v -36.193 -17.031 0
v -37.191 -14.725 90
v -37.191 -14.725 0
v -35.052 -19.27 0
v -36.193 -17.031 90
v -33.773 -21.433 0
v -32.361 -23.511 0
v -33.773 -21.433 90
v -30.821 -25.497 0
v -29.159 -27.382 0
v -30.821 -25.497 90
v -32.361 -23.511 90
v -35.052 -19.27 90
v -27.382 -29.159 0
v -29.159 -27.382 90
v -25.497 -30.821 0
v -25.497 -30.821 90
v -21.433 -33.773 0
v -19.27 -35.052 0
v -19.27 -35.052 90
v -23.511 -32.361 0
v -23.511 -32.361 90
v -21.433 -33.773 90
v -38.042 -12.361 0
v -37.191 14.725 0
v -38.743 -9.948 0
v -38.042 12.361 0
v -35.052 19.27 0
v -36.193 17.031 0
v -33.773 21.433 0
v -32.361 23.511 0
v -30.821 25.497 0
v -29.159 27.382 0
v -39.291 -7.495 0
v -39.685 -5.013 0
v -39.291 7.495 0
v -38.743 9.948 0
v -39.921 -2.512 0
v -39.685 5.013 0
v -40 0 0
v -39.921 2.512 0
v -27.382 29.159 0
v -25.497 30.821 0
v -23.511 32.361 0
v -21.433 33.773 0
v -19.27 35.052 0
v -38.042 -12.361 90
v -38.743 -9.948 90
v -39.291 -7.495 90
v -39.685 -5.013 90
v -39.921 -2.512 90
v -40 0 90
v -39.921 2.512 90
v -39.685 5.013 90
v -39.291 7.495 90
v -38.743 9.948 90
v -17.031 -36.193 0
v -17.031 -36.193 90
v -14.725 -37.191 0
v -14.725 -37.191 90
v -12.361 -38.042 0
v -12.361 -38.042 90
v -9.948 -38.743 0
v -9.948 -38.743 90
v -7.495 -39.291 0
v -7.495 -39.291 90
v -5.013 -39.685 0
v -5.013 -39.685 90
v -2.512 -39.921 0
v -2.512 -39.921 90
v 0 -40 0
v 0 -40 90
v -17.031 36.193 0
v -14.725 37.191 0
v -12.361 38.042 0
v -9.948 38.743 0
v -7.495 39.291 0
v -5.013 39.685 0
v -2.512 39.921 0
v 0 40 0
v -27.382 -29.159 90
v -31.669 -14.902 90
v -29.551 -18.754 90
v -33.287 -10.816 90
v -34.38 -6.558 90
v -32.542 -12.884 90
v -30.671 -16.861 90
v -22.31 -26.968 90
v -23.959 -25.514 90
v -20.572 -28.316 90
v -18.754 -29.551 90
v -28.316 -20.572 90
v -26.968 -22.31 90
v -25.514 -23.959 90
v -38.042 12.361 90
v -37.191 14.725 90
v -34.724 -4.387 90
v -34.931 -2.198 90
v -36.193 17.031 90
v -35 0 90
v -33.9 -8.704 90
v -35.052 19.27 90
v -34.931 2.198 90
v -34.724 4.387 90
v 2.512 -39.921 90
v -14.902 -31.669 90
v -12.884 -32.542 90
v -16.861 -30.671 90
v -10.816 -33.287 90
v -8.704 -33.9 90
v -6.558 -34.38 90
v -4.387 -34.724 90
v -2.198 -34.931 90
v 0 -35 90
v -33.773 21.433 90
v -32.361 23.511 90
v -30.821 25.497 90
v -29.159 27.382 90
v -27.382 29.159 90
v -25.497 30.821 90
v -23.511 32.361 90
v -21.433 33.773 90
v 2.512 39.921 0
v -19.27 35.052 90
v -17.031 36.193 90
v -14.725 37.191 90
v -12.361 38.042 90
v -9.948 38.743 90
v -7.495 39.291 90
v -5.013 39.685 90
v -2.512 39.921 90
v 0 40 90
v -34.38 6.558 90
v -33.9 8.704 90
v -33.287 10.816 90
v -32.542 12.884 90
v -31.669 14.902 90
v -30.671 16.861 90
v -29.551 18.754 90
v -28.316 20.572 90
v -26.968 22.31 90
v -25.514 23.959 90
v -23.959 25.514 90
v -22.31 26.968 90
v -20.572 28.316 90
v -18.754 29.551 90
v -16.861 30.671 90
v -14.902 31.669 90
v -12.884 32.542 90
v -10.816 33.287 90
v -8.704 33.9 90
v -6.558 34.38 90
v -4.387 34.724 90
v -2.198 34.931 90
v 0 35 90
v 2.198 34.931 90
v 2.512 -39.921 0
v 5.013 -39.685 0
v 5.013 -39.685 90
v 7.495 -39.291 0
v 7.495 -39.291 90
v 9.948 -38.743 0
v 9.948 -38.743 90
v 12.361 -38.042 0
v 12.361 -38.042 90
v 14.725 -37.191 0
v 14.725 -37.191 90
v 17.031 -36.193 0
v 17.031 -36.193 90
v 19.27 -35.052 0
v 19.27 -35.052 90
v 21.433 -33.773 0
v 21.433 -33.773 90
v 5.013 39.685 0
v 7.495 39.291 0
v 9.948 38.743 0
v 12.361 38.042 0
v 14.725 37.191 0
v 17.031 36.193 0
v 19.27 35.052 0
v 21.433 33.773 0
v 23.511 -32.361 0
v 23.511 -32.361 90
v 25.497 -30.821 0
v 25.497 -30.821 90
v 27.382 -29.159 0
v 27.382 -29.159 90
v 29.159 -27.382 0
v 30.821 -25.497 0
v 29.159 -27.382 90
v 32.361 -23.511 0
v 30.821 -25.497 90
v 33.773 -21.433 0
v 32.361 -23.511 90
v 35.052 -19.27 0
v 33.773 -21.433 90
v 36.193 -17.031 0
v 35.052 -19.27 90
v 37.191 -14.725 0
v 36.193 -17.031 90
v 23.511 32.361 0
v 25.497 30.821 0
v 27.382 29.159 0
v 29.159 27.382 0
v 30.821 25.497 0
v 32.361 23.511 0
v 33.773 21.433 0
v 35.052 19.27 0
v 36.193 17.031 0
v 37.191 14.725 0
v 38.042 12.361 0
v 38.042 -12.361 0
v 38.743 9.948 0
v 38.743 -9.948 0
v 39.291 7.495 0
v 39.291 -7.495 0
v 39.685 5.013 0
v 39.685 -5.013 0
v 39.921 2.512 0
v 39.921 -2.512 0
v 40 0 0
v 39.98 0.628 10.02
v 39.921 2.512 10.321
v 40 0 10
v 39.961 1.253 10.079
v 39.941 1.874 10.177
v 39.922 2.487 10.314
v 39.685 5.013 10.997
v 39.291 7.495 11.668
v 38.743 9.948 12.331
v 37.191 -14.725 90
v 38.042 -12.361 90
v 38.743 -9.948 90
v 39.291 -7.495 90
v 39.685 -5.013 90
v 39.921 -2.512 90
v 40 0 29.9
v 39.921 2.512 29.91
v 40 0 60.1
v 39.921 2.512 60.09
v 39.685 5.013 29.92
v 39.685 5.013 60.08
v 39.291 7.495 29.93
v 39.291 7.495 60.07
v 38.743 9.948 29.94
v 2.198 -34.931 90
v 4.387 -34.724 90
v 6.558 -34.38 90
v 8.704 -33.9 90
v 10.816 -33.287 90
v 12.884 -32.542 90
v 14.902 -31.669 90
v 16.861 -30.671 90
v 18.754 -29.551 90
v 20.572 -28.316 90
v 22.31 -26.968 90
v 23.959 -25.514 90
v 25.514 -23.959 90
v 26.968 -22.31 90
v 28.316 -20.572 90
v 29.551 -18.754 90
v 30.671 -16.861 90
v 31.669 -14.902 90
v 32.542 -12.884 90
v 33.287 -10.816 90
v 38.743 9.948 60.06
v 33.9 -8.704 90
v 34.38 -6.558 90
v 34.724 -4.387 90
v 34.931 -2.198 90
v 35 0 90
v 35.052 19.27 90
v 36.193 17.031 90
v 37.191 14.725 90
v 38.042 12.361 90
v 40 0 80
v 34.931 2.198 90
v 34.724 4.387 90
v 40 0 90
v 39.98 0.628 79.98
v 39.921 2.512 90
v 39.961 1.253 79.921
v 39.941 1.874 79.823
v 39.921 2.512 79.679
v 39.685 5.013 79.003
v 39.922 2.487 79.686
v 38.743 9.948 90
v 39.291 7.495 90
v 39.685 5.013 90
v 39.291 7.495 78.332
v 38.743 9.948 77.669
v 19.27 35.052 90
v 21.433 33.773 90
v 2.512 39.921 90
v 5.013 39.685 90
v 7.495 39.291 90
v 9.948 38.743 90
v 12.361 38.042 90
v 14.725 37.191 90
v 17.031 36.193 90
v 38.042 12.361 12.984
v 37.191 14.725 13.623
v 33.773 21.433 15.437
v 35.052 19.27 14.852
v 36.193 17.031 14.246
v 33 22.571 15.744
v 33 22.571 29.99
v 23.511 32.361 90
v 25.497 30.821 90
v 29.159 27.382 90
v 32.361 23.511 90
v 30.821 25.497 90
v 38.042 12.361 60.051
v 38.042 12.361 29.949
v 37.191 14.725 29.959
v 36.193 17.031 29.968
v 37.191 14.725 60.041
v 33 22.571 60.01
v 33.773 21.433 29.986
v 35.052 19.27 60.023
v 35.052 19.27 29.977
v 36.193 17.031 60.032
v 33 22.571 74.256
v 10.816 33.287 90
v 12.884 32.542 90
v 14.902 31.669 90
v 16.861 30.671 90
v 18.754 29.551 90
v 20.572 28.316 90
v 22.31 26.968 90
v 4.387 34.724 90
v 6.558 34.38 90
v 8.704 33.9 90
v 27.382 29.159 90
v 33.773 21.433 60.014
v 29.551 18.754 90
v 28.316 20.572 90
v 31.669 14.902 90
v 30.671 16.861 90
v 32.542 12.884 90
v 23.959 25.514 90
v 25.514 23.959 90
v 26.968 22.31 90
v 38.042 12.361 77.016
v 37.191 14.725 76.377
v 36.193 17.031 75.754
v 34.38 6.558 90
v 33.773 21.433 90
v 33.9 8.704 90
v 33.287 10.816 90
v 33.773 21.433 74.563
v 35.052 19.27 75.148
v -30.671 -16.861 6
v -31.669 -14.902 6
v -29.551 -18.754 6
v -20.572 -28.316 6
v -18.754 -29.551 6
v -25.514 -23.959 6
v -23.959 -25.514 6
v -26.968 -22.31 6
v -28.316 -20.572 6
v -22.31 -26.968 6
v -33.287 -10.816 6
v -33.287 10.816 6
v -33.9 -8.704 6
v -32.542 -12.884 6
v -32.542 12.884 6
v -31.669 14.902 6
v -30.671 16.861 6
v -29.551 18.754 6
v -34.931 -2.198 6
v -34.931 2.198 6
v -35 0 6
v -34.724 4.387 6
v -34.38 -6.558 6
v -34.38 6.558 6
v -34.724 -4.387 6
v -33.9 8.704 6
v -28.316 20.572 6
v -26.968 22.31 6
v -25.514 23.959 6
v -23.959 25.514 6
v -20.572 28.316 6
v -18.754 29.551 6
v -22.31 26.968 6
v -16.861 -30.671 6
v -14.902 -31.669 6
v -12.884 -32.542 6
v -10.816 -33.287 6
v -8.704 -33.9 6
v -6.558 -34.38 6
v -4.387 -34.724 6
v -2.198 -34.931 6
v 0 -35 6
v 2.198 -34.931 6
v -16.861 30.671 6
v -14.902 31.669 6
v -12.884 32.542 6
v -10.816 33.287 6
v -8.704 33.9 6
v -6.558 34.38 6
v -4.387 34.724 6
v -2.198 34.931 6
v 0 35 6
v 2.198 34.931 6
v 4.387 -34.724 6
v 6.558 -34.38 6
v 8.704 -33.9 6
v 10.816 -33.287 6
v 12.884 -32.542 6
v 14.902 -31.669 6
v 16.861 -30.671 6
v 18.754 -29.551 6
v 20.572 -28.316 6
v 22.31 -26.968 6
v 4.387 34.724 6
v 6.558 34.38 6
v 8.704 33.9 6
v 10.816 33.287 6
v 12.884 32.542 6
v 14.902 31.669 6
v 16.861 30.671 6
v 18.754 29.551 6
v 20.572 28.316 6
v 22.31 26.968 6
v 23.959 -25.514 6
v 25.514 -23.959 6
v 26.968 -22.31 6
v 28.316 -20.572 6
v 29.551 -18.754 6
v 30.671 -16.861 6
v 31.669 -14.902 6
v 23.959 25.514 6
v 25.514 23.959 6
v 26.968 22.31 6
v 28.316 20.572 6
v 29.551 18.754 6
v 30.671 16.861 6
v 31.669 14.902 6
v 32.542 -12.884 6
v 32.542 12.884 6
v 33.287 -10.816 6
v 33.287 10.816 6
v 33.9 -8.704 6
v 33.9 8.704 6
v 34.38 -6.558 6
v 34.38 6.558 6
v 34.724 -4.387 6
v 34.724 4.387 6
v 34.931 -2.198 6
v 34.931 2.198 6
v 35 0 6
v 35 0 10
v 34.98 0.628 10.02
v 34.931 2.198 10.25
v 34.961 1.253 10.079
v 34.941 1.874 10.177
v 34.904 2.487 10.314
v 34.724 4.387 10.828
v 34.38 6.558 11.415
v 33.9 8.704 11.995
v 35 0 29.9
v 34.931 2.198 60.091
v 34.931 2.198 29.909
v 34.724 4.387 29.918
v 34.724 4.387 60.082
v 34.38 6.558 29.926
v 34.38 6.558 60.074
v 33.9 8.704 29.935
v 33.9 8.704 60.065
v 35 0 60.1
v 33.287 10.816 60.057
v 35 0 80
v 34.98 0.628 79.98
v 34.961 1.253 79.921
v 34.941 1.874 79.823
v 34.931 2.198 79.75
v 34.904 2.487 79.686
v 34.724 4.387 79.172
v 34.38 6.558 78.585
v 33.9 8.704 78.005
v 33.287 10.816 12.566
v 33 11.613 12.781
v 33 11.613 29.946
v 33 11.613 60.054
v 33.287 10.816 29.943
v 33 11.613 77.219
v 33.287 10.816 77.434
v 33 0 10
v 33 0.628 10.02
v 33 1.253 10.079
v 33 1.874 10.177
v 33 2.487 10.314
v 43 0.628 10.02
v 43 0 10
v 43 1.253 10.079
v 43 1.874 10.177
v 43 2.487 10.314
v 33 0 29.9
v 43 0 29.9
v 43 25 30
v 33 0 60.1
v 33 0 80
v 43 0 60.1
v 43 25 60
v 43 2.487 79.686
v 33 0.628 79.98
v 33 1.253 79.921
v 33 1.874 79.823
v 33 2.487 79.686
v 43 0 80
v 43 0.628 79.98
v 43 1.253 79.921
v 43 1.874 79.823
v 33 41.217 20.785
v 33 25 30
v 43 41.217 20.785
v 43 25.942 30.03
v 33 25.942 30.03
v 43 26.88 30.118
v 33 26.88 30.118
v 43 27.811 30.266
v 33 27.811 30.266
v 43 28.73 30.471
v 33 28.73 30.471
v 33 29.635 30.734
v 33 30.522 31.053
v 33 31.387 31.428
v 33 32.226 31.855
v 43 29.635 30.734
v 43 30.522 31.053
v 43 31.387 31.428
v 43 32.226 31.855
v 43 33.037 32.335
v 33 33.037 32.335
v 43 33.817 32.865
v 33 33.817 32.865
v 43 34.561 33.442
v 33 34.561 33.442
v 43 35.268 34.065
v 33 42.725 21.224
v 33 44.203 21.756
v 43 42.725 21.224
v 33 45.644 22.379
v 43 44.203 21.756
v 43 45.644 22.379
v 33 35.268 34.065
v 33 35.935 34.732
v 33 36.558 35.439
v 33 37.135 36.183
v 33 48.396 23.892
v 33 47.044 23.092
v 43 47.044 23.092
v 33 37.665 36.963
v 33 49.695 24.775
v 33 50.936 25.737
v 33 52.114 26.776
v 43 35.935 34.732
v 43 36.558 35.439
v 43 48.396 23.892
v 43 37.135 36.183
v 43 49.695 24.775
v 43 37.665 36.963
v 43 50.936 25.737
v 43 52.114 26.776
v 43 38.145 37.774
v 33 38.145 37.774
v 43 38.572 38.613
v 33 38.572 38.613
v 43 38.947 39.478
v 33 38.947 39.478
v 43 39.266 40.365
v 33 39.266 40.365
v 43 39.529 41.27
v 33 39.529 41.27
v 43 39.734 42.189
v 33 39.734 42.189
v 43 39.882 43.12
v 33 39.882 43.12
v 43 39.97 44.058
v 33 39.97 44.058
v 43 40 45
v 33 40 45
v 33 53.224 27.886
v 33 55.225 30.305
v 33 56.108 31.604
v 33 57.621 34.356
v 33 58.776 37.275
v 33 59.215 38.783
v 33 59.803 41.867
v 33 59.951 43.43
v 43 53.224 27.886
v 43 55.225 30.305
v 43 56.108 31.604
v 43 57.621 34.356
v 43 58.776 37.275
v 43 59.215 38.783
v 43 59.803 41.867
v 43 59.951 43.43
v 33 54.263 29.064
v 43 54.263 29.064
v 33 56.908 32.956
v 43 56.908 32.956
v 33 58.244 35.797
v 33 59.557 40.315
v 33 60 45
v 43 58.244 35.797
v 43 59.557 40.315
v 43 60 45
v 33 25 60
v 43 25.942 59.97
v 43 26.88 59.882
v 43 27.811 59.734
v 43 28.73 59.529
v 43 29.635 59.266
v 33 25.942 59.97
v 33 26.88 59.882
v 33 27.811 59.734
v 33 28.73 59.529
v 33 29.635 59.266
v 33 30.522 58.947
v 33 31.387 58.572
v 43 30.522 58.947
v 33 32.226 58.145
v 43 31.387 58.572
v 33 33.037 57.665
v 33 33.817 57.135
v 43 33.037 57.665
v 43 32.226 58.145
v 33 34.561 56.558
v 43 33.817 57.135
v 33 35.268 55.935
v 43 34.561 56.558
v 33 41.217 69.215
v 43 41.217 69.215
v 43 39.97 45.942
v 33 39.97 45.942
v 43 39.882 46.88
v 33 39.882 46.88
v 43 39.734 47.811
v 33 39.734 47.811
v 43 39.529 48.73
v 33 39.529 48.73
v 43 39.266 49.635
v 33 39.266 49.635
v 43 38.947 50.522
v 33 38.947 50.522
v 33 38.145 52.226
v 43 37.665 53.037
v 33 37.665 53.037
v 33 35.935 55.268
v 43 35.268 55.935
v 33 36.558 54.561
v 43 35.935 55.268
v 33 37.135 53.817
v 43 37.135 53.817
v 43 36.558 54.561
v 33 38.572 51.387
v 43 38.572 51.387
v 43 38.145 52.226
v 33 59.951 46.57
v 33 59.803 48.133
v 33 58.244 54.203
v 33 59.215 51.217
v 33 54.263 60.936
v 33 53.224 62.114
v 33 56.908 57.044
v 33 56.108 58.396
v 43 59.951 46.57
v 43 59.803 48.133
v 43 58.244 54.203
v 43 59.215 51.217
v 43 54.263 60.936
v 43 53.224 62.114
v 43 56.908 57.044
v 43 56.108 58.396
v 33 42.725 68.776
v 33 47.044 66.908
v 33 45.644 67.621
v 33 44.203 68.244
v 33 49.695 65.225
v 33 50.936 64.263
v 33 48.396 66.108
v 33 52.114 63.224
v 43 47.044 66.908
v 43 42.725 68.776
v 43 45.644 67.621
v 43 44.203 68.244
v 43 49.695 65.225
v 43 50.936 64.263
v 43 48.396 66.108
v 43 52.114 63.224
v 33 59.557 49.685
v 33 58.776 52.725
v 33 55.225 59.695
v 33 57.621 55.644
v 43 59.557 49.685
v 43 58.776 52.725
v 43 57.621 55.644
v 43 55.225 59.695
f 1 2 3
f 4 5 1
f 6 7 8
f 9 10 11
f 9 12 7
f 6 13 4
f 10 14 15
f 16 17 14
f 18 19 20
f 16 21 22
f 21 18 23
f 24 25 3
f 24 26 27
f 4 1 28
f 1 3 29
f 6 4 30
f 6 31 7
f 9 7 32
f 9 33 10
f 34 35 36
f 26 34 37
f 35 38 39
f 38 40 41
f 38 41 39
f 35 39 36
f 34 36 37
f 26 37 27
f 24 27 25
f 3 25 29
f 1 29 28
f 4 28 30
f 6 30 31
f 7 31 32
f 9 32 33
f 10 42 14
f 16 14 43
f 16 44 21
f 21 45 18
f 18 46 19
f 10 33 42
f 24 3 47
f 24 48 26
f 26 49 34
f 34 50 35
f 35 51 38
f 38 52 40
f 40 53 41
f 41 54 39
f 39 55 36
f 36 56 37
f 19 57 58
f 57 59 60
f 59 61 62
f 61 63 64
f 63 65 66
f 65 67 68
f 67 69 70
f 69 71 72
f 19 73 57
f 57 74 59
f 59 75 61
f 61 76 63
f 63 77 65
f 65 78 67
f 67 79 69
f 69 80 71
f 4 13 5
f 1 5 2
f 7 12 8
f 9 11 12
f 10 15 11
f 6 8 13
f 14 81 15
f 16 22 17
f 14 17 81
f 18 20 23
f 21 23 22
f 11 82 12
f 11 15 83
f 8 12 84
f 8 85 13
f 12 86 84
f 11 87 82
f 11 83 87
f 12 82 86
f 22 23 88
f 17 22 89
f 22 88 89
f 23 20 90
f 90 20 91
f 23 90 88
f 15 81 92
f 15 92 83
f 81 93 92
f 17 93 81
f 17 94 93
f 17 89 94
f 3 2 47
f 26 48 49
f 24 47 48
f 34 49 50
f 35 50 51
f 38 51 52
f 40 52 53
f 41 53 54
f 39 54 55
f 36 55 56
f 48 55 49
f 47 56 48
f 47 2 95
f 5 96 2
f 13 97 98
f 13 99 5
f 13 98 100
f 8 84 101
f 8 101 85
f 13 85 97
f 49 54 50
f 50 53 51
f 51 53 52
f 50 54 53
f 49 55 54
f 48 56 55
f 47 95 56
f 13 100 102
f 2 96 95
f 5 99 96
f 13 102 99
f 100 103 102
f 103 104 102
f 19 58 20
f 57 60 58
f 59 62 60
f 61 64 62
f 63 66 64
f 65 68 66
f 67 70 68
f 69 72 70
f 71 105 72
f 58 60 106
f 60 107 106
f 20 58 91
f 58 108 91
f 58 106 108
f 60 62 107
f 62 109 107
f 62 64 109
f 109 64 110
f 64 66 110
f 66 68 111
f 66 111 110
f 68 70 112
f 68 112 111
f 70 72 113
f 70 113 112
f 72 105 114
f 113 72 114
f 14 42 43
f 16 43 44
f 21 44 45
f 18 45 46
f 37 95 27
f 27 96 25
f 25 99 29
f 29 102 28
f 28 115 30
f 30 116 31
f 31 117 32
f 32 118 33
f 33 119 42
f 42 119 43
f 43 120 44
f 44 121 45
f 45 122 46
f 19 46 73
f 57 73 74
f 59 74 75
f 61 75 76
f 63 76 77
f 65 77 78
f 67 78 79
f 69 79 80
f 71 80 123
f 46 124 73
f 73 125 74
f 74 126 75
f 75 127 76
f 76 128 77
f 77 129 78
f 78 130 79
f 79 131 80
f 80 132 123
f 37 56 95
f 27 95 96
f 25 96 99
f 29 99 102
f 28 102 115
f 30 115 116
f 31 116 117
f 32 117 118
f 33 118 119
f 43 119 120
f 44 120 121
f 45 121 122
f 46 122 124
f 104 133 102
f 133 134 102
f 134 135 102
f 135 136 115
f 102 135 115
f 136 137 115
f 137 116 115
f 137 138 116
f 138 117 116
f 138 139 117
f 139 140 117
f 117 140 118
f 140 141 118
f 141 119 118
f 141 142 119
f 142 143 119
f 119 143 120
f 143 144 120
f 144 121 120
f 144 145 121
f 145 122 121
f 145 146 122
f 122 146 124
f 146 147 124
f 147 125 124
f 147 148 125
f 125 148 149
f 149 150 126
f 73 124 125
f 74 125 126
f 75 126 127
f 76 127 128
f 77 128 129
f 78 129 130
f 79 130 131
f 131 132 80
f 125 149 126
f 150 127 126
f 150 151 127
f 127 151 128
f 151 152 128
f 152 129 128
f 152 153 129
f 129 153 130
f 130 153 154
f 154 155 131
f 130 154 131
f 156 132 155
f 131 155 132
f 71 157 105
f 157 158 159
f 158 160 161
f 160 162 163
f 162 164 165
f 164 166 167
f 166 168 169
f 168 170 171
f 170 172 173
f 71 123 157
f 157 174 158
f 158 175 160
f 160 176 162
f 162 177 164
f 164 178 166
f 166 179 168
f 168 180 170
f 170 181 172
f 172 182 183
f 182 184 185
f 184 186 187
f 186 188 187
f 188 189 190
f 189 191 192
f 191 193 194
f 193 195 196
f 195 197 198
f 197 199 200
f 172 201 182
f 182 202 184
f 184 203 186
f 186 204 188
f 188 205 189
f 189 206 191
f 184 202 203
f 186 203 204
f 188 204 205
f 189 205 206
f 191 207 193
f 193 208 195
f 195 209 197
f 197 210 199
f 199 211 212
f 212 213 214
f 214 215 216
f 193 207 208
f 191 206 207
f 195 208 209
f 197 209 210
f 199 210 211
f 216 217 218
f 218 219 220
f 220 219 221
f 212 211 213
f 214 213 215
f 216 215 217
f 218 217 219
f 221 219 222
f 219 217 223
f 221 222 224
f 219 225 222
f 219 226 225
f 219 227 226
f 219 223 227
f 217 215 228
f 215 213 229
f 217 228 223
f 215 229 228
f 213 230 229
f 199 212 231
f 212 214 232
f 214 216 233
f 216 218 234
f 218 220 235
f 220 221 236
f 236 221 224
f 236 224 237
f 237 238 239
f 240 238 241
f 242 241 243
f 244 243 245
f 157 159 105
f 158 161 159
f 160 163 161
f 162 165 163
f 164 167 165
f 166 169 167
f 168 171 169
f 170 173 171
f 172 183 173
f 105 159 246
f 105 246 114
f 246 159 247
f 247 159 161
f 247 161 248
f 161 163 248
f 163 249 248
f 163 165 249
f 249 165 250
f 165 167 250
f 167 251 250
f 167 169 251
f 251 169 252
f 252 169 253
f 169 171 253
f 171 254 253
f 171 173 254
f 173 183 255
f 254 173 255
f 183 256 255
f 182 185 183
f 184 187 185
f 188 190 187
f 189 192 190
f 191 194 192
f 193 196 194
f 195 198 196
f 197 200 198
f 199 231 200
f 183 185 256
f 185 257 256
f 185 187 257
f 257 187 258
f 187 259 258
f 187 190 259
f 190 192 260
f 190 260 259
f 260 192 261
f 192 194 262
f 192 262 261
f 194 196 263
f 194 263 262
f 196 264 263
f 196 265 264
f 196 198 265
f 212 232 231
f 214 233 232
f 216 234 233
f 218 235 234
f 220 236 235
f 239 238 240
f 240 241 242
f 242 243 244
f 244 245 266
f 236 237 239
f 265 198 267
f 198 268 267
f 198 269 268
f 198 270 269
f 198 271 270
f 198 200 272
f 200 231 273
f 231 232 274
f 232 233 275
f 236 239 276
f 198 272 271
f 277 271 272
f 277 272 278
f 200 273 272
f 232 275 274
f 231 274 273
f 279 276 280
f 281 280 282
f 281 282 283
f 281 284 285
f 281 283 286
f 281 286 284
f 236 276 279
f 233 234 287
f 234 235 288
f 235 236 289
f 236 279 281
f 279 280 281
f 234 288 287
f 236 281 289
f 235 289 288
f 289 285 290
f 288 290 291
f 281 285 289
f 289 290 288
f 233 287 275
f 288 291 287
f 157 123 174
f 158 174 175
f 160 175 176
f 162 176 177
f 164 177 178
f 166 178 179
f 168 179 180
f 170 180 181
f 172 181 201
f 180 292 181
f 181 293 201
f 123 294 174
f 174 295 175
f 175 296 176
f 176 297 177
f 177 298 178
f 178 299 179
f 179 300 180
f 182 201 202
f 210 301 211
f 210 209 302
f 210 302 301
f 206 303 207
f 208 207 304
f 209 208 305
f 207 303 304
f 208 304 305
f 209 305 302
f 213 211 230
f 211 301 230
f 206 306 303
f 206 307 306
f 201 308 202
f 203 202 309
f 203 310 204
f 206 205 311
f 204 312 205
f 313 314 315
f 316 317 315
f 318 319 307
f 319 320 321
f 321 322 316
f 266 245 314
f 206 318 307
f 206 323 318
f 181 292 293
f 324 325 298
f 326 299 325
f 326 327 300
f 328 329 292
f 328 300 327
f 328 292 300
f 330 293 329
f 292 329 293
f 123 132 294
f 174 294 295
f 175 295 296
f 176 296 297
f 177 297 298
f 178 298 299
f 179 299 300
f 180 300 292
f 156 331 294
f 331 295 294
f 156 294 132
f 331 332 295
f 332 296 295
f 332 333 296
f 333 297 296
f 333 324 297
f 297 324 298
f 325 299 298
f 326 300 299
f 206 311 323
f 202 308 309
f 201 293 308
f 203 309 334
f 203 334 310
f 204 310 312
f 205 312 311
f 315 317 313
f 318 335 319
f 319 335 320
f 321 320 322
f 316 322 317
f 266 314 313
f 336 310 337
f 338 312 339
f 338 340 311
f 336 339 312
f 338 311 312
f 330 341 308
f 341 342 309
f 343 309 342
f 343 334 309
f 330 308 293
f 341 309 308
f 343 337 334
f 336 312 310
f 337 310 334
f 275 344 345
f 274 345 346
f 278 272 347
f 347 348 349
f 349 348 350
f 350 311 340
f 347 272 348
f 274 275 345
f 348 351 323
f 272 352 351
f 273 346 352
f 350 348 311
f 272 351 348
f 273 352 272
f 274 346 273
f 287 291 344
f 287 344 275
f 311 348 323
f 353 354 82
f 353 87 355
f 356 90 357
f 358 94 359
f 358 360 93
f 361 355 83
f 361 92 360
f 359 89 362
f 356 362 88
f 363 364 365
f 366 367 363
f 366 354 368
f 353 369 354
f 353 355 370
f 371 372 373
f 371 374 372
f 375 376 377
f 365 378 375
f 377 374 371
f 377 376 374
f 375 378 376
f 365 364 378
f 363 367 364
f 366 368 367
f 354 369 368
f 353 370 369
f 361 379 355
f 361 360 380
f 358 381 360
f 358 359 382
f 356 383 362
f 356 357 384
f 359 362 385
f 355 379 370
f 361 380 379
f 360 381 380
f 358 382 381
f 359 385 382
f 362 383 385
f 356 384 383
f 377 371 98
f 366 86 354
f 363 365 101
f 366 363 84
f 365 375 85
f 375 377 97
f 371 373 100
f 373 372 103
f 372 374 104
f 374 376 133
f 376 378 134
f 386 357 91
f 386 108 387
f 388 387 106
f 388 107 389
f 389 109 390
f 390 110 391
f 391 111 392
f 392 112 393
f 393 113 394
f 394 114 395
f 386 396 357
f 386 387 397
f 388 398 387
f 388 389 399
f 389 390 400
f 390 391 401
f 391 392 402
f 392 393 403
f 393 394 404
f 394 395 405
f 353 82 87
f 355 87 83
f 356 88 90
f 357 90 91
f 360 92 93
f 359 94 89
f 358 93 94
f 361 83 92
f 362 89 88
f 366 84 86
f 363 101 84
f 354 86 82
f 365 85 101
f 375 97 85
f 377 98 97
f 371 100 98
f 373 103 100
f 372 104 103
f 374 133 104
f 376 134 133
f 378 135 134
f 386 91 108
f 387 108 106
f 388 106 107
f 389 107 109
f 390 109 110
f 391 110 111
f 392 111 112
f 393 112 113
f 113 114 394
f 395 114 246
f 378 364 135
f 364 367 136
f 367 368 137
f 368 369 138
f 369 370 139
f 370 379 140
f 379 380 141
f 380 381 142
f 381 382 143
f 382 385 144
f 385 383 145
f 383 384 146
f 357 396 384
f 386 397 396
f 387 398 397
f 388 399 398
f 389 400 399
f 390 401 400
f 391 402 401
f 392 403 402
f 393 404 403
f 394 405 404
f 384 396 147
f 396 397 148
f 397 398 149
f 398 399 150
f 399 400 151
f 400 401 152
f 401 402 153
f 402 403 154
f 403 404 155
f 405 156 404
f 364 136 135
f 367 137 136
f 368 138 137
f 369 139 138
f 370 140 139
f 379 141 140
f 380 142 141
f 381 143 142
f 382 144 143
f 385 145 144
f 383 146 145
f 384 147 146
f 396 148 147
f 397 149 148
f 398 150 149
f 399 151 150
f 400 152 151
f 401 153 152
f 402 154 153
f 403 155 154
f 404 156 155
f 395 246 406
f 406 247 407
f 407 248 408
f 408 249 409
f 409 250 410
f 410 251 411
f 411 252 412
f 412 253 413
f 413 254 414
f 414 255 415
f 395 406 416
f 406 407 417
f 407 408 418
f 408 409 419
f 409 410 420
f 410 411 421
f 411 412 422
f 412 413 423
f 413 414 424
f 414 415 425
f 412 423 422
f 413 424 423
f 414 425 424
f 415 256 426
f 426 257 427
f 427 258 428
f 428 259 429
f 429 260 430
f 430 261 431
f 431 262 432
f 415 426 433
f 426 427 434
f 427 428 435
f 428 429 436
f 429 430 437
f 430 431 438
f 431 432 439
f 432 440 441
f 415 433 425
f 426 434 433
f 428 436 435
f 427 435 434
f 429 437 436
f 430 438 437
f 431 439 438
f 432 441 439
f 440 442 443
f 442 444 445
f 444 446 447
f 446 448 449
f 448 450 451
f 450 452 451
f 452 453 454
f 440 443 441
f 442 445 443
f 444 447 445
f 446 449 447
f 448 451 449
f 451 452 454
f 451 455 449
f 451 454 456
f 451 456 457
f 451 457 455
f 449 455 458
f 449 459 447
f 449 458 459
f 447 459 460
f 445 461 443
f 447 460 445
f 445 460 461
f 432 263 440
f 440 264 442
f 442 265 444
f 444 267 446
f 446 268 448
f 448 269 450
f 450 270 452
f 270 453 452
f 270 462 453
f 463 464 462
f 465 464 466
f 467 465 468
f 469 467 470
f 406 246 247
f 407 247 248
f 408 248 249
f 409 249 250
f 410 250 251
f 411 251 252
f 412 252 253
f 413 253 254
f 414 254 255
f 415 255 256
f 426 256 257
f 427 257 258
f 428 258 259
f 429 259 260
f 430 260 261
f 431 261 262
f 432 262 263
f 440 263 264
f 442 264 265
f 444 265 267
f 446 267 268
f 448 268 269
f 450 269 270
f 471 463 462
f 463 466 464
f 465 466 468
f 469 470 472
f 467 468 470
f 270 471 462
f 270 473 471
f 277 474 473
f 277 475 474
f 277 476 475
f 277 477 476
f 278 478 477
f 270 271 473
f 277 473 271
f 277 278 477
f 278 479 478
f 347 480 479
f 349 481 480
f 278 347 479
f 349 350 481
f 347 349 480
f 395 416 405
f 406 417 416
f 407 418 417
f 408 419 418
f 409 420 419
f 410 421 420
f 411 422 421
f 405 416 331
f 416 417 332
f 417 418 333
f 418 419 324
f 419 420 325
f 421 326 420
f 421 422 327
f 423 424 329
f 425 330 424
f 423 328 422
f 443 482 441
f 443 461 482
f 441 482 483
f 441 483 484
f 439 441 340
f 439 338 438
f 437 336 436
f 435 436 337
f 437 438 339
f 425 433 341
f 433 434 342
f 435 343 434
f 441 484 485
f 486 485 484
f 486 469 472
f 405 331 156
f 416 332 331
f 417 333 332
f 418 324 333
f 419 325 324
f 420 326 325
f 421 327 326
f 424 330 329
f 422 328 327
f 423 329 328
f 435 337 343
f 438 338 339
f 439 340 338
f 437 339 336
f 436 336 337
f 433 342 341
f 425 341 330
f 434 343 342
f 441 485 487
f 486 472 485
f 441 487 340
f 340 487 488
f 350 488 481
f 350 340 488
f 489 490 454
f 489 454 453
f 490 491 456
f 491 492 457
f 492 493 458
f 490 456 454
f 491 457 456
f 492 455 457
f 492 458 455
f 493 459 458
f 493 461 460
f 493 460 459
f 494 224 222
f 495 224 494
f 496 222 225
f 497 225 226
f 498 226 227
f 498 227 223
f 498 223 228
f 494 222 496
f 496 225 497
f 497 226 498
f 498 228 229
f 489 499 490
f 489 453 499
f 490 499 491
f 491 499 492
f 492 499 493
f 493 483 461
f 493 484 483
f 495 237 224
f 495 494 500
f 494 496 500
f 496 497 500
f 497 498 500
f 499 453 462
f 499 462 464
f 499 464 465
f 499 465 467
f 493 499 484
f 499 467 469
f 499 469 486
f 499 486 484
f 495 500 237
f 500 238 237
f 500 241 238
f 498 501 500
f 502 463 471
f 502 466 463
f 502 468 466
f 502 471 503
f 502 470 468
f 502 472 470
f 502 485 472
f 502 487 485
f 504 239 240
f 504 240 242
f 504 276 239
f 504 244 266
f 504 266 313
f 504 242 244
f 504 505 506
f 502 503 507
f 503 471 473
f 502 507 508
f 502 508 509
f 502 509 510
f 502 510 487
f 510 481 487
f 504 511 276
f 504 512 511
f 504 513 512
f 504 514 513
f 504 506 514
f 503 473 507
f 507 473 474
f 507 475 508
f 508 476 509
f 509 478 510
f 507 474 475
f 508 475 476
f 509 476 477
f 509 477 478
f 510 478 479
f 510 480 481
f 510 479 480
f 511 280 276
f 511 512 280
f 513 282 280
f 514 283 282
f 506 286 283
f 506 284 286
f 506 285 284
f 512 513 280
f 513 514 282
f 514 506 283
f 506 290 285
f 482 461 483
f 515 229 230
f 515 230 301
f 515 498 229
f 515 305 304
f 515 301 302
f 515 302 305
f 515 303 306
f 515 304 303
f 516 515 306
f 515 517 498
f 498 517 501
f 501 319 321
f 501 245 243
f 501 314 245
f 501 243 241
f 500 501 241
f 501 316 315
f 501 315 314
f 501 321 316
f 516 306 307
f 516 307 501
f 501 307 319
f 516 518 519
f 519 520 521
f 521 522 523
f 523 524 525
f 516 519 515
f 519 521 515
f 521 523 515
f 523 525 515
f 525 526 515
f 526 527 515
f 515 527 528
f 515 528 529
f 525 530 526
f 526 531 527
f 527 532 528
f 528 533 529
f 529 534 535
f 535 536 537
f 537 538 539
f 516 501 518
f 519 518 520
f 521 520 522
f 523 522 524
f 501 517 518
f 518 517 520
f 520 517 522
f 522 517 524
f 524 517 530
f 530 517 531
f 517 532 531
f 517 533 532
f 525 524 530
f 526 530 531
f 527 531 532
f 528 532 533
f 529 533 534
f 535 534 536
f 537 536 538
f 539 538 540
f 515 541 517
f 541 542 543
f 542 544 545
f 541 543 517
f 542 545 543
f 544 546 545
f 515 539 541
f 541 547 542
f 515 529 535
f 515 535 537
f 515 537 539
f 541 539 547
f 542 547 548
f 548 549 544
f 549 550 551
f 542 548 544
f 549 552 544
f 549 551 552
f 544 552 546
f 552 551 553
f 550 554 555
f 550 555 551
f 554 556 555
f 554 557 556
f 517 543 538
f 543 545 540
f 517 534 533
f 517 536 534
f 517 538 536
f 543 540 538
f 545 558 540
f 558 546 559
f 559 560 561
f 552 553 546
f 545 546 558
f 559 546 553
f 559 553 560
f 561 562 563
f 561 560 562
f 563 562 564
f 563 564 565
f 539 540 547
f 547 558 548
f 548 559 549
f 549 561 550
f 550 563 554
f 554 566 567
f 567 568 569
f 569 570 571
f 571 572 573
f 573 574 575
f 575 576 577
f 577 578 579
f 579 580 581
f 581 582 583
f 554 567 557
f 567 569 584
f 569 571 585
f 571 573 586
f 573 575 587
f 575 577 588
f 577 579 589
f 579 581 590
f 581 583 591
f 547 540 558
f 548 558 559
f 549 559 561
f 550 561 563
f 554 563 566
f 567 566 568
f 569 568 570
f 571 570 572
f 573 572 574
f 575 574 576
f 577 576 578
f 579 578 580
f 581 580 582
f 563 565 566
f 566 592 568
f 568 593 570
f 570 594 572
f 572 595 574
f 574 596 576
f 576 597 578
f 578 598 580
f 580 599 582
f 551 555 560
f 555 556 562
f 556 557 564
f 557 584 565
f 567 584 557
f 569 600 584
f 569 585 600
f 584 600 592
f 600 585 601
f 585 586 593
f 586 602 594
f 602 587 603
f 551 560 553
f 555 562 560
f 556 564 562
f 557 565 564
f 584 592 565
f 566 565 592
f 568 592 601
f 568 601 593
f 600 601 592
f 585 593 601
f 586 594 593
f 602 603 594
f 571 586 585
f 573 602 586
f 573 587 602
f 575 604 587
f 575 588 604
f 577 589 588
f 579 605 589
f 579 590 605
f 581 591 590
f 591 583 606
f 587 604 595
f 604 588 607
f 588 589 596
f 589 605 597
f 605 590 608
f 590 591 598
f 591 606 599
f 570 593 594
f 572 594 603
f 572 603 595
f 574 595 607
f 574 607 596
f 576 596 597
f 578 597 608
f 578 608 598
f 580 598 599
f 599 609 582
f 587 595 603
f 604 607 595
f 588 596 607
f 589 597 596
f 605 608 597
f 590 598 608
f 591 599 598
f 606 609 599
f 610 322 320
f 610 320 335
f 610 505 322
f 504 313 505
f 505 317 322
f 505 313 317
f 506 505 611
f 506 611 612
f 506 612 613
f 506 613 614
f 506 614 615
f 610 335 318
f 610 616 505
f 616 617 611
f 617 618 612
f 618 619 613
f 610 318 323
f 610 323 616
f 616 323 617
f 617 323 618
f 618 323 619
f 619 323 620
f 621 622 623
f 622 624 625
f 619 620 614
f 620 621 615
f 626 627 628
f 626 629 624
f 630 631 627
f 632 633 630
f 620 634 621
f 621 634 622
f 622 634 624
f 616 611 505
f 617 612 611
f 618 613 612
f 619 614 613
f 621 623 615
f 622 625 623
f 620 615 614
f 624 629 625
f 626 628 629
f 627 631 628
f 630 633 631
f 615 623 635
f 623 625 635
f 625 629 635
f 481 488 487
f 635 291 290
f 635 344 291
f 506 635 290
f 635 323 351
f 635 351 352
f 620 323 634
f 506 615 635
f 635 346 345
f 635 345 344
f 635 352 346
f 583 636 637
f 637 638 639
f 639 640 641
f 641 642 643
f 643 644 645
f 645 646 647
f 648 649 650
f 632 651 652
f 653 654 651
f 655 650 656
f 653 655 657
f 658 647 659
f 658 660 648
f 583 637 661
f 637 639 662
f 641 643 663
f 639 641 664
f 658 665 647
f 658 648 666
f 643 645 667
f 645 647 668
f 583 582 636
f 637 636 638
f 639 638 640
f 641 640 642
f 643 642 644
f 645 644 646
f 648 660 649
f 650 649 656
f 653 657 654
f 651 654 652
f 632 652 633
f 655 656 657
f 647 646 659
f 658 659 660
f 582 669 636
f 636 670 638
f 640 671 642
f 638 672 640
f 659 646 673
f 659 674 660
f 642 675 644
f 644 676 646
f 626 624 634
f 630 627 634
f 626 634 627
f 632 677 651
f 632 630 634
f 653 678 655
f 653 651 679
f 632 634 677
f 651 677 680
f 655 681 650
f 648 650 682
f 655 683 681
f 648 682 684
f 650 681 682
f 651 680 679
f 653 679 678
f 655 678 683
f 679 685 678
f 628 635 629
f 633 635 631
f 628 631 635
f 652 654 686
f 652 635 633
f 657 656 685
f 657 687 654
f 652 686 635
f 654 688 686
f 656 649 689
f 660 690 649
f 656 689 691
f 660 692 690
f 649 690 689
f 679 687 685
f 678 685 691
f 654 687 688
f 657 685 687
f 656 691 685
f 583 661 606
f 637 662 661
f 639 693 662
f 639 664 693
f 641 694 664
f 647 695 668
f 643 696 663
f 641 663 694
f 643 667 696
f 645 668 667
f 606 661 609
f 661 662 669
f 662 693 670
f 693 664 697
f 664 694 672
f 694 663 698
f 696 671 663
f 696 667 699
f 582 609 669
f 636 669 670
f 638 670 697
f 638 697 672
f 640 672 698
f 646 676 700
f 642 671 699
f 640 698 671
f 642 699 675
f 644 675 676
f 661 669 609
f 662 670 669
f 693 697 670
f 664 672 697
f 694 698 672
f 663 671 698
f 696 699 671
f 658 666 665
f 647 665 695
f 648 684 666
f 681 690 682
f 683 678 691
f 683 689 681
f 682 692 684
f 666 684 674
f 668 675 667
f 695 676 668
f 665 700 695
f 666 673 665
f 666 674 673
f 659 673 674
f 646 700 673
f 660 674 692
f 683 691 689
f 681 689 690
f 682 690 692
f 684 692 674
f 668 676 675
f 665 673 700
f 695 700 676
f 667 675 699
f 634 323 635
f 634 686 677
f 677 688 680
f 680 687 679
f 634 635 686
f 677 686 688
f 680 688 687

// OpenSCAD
// マグカップのパラメータ
body_outer_dia = 80;
body_inner_dia = 70;
body_height = 90;
bottom_thickness = 6;

// 取っ手のパラメータ
handle_inner_h = 30;
handle_inner_w = 25;
handle_thickness = 10; // 取っ手の太さ

$fn = 100; // 円の分割数（滑らかさ）

module mug_body() {
    difference() {
        // 外側円筒
        cylinder(d = body_outer_dia, h = body_height);
        
        // 内側中空部分（底の厚みを残す）
        translate([0, 0, bottom_thickness])
            cylinder(d = body_inner_dia, h = body_height - bottom_thickness + 1);
    }
}

module mug_handle() {
    // 取っ手の中心位置をマグの中央高さに合わせ、+X方向に配置
    handle_y_offset = body_height / 2;
    handle_x_offset = body_outer_dia / 2 - 2; // 少し本体にめり込ませてunionを確実にする

    translate([handle_x_offset, 0, handle_y_offset]) {
        rotate([90, 0, 90]) { // YZ平面に沿うように回転
            difference() {
                // 取っ手の外形（D字型の角丸長方形を表現するために2D offsetを使用）
                linear_extrude(height = handle_thickness, center = true) {
                    difference() {
                        // 外側の輪郭
                        hull() {
                            translate([0, -(handle_inner_h/2 + handle_thickness)])
                                circle(r = handle_thickness);
                            translate([0, handle_inner_h/2 + handle_thickness])
                                circle(r = handle_thickness);
                            translate([handle_inner_w + handle_thickness, 0])
                                circle(r = handle_inner_h/2 + handle_thickness);
                        }
                        // 内側の穴
                        hull() {
                            translate([0, -handle_inner_h/2])
                                circle(r = 0.1);
                            translate([0, handle_inner_h/2])
                                circle(r = 0.1);
                            translate([handle_inner_w, 0])
                                circle(r = handle_inner_h/2);
                        }
                        // 本体側（X<=0）をカットして平らにし、接続を安定させる
                        translate([-handle_thickness*2, -(handle_inner_h + handle_thickness*2)])
                            square([handle_thickness*2, (handle_inner_h + handle_thickness*2)*2]);
                    }
                }
            }
        }
    }
}

// 本体と取っ手の結合
union() {
    mug_body();
    mug_handle();
}
